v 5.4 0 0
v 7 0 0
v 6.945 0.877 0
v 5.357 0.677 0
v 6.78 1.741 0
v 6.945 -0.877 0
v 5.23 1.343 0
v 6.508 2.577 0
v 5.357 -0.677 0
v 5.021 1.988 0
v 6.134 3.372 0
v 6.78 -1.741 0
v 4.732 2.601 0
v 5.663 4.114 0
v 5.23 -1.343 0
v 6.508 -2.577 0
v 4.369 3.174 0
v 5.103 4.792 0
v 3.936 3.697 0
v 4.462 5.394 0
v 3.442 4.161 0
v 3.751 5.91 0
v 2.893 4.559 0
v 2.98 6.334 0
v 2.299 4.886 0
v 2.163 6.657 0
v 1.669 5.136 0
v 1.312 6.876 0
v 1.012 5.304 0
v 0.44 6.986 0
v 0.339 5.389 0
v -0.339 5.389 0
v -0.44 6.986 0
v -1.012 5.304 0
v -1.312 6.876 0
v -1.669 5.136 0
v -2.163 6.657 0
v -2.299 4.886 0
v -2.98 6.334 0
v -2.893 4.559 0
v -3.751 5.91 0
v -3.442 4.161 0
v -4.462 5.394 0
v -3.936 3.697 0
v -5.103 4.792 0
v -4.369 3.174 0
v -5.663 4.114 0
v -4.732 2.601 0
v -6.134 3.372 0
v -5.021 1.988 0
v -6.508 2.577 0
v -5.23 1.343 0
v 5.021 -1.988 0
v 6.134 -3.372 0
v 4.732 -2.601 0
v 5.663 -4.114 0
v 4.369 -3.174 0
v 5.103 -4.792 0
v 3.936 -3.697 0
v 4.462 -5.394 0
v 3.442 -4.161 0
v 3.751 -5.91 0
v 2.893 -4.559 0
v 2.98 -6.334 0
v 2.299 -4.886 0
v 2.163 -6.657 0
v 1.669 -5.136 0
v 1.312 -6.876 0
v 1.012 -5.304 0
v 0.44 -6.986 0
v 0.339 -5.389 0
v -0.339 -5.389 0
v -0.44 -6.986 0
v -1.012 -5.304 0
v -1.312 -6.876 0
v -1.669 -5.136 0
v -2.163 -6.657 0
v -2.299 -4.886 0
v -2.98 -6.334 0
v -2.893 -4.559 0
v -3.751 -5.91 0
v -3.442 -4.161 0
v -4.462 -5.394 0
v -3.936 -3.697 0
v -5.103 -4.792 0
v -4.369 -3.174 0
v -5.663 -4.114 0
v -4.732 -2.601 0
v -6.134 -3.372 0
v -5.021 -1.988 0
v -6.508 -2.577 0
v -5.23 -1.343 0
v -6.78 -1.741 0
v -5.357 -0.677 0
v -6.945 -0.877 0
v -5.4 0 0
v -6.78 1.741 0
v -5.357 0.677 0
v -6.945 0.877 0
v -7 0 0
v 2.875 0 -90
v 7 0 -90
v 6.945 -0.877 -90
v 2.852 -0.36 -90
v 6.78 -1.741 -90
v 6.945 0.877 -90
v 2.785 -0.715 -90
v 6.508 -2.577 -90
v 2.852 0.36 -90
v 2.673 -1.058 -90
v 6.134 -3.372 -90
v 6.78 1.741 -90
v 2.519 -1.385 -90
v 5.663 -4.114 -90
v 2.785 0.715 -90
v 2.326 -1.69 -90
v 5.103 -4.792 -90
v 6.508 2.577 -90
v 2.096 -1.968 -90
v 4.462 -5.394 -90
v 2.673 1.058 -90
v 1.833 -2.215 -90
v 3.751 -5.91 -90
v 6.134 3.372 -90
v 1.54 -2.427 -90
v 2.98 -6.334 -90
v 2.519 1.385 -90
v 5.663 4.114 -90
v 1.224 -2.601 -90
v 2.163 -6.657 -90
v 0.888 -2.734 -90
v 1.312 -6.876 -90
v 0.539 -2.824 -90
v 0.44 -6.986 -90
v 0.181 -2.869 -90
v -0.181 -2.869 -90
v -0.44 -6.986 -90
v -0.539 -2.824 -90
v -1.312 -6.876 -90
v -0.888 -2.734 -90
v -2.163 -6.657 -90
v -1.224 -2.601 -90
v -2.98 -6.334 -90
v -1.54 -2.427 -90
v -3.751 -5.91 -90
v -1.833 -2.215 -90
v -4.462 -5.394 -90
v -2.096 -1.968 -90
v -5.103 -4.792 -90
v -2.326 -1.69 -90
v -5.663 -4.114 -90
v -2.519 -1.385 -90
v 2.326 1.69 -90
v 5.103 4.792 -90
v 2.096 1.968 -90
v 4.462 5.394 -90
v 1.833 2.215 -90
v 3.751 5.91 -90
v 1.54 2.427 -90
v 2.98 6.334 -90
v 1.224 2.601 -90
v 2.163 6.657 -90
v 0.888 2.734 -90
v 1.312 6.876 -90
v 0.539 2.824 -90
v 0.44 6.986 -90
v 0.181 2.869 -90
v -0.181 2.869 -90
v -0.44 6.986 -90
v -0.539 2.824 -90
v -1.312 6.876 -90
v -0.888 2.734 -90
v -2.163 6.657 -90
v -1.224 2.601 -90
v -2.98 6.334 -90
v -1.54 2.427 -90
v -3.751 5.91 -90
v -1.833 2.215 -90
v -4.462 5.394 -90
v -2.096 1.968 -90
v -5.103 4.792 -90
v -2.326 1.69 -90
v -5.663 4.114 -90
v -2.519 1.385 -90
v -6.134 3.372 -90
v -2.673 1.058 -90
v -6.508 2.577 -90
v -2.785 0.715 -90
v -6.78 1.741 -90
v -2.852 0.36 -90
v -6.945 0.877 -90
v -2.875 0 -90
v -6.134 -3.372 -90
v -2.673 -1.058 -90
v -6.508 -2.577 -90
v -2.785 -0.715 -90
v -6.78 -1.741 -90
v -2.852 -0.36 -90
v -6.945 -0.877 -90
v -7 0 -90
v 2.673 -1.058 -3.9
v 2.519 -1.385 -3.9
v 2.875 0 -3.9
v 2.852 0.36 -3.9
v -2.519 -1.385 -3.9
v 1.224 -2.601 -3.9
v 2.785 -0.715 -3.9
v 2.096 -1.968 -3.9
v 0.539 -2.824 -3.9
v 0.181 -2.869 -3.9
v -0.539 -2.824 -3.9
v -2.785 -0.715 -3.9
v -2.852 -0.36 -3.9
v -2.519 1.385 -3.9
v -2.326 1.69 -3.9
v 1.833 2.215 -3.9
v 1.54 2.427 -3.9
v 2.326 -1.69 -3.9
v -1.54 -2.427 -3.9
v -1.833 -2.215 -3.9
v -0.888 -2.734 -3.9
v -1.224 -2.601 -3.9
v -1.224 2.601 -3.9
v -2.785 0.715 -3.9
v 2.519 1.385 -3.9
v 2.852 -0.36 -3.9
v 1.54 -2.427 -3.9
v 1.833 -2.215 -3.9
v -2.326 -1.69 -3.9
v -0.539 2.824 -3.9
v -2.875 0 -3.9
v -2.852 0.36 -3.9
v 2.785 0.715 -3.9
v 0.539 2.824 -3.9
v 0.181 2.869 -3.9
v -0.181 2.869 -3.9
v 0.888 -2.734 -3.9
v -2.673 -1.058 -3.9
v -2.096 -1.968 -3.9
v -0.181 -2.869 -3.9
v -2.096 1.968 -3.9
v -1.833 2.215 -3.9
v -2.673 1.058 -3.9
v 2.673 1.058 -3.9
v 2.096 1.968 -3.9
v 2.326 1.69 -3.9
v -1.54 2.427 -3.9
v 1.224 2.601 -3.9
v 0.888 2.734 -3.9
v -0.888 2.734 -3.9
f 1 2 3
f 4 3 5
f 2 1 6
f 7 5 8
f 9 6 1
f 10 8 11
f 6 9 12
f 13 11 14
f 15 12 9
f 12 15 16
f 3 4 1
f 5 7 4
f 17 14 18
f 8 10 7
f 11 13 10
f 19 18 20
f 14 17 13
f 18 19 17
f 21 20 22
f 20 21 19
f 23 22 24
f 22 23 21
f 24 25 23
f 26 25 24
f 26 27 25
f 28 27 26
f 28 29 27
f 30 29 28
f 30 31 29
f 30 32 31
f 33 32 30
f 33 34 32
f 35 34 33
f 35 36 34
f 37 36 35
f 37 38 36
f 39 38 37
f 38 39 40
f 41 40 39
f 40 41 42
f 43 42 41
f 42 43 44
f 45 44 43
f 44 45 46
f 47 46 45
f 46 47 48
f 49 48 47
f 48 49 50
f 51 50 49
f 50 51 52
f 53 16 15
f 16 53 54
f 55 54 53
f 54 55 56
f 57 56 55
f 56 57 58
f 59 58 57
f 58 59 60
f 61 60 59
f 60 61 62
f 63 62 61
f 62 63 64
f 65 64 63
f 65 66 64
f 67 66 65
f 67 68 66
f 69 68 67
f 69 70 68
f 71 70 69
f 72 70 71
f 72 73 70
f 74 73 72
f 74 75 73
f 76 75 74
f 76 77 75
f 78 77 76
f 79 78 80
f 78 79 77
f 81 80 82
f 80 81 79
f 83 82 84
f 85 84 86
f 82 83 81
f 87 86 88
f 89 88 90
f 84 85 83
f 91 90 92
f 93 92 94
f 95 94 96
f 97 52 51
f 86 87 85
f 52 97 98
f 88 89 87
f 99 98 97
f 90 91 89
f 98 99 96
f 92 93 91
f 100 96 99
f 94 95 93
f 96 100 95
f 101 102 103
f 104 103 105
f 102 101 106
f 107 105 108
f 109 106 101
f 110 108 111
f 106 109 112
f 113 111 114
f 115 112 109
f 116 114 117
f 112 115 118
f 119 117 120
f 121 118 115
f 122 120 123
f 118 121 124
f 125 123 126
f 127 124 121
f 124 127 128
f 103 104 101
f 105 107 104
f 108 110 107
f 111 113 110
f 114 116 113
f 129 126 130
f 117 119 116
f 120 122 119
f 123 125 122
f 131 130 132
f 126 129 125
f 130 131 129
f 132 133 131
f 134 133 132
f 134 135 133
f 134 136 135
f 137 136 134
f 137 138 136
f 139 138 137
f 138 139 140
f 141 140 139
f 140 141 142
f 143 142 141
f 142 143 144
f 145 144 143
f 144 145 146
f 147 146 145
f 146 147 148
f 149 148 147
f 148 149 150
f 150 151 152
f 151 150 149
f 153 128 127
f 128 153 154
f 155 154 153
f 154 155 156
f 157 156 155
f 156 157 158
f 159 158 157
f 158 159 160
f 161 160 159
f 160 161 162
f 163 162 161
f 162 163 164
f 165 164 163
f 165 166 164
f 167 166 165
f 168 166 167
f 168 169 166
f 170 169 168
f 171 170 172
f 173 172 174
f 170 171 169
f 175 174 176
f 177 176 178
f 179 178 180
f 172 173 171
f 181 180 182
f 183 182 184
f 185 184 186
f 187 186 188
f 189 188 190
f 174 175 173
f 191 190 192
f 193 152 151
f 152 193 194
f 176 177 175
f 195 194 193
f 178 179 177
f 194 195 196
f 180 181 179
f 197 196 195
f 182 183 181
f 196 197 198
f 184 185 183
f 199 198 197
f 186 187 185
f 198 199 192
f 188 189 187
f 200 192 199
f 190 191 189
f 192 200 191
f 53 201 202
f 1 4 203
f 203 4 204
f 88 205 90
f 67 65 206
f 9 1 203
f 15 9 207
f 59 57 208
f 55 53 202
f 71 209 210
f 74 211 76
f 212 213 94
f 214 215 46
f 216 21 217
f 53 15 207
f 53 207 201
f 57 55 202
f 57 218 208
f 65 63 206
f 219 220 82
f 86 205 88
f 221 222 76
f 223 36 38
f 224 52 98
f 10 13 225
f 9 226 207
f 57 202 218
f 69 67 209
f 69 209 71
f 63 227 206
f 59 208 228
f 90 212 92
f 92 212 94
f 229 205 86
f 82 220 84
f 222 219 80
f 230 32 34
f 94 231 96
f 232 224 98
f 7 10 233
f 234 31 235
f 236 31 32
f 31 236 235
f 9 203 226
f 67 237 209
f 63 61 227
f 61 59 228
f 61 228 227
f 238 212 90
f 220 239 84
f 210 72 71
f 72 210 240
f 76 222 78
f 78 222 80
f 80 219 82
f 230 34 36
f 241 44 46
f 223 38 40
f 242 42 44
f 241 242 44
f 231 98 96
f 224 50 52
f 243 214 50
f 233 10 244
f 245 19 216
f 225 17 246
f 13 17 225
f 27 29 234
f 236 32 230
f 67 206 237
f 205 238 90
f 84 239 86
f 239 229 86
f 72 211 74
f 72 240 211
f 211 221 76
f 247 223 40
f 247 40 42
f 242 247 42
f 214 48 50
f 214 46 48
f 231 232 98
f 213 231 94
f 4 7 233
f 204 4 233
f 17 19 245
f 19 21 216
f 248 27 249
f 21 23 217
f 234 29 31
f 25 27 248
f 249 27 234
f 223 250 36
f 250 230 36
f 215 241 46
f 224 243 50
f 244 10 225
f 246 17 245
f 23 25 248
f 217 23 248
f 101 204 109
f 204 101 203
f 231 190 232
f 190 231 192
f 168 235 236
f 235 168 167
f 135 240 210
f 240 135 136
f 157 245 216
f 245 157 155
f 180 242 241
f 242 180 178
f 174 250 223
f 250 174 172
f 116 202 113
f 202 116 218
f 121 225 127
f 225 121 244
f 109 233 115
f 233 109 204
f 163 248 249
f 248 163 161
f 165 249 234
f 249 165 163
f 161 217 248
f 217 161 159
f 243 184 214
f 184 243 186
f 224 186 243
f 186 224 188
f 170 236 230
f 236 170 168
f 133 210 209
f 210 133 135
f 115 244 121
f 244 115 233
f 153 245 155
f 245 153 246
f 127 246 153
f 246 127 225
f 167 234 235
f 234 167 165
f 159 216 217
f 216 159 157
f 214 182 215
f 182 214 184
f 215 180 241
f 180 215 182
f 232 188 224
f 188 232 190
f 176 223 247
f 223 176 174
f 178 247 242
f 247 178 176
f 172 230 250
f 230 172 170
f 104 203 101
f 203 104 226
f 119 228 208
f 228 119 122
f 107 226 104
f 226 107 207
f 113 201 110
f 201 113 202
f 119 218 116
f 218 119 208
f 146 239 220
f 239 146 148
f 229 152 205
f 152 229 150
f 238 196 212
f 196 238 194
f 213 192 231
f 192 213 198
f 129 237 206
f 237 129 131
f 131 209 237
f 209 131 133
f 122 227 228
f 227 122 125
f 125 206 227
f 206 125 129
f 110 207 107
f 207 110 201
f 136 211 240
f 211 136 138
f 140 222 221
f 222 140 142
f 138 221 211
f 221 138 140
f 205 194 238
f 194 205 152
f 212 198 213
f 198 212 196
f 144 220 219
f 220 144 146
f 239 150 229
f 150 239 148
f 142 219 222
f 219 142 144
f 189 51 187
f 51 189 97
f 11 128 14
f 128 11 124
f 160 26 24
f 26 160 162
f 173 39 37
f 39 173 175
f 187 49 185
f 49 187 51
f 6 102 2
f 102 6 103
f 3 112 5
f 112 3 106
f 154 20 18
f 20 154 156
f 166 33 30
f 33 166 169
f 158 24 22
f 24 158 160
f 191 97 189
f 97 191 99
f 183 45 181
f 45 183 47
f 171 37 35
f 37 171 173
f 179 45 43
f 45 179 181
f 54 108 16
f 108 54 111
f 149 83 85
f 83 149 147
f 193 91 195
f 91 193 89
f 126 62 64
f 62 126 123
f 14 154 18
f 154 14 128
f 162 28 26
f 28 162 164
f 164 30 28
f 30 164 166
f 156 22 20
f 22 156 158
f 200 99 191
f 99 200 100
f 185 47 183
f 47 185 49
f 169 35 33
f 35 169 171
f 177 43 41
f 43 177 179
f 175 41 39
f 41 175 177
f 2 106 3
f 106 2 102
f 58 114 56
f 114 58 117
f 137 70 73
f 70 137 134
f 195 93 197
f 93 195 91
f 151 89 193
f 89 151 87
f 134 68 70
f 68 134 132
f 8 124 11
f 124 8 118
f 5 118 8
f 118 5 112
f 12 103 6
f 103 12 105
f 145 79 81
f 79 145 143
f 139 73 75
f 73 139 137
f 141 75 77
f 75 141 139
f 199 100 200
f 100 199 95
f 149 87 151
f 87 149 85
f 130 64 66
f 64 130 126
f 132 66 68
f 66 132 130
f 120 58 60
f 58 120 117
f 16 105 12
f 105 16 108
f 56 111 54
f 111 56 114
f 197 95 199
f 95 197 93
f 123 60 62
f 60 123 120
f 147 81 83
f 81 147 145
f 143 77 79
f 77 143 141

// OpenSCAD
$fn = 50;


difference() {
	union() {
		translate(v = [0, 0, -90.0000000000]) {
			cylinder(h = 90, r = 7.0000000000);
		}
		cylinder(h = 0, r = 16.0000000000);
	}
	union() {
		translate(v = [0, 0, 0]) {
			rotate(a = [0, 0, 0]) {
				difference() {
					union() {
						#translate(v = [0, 0, -90.0000000000]) {
							cylinder(h = 90, r = 2.6000000000);
						}
						#translate(v = [0, 0, -3.9000000000]) {
							cylinder(h = 3.9000000000, r = 7.0000000000, r1 = 2.8750000000, r2 = 5.4000000000);
						}
						#translate(v = [0, 0, -90.0000000000]) {
							cylinder(h = 90, r = 2.8750000000);
						}
						#translate(v = [0, 0, -90.0000000000]) {
							cylinder(h = 90, r = 2.6000000000);
						}
					}
					union();
				}
			}
		}
	}
}
